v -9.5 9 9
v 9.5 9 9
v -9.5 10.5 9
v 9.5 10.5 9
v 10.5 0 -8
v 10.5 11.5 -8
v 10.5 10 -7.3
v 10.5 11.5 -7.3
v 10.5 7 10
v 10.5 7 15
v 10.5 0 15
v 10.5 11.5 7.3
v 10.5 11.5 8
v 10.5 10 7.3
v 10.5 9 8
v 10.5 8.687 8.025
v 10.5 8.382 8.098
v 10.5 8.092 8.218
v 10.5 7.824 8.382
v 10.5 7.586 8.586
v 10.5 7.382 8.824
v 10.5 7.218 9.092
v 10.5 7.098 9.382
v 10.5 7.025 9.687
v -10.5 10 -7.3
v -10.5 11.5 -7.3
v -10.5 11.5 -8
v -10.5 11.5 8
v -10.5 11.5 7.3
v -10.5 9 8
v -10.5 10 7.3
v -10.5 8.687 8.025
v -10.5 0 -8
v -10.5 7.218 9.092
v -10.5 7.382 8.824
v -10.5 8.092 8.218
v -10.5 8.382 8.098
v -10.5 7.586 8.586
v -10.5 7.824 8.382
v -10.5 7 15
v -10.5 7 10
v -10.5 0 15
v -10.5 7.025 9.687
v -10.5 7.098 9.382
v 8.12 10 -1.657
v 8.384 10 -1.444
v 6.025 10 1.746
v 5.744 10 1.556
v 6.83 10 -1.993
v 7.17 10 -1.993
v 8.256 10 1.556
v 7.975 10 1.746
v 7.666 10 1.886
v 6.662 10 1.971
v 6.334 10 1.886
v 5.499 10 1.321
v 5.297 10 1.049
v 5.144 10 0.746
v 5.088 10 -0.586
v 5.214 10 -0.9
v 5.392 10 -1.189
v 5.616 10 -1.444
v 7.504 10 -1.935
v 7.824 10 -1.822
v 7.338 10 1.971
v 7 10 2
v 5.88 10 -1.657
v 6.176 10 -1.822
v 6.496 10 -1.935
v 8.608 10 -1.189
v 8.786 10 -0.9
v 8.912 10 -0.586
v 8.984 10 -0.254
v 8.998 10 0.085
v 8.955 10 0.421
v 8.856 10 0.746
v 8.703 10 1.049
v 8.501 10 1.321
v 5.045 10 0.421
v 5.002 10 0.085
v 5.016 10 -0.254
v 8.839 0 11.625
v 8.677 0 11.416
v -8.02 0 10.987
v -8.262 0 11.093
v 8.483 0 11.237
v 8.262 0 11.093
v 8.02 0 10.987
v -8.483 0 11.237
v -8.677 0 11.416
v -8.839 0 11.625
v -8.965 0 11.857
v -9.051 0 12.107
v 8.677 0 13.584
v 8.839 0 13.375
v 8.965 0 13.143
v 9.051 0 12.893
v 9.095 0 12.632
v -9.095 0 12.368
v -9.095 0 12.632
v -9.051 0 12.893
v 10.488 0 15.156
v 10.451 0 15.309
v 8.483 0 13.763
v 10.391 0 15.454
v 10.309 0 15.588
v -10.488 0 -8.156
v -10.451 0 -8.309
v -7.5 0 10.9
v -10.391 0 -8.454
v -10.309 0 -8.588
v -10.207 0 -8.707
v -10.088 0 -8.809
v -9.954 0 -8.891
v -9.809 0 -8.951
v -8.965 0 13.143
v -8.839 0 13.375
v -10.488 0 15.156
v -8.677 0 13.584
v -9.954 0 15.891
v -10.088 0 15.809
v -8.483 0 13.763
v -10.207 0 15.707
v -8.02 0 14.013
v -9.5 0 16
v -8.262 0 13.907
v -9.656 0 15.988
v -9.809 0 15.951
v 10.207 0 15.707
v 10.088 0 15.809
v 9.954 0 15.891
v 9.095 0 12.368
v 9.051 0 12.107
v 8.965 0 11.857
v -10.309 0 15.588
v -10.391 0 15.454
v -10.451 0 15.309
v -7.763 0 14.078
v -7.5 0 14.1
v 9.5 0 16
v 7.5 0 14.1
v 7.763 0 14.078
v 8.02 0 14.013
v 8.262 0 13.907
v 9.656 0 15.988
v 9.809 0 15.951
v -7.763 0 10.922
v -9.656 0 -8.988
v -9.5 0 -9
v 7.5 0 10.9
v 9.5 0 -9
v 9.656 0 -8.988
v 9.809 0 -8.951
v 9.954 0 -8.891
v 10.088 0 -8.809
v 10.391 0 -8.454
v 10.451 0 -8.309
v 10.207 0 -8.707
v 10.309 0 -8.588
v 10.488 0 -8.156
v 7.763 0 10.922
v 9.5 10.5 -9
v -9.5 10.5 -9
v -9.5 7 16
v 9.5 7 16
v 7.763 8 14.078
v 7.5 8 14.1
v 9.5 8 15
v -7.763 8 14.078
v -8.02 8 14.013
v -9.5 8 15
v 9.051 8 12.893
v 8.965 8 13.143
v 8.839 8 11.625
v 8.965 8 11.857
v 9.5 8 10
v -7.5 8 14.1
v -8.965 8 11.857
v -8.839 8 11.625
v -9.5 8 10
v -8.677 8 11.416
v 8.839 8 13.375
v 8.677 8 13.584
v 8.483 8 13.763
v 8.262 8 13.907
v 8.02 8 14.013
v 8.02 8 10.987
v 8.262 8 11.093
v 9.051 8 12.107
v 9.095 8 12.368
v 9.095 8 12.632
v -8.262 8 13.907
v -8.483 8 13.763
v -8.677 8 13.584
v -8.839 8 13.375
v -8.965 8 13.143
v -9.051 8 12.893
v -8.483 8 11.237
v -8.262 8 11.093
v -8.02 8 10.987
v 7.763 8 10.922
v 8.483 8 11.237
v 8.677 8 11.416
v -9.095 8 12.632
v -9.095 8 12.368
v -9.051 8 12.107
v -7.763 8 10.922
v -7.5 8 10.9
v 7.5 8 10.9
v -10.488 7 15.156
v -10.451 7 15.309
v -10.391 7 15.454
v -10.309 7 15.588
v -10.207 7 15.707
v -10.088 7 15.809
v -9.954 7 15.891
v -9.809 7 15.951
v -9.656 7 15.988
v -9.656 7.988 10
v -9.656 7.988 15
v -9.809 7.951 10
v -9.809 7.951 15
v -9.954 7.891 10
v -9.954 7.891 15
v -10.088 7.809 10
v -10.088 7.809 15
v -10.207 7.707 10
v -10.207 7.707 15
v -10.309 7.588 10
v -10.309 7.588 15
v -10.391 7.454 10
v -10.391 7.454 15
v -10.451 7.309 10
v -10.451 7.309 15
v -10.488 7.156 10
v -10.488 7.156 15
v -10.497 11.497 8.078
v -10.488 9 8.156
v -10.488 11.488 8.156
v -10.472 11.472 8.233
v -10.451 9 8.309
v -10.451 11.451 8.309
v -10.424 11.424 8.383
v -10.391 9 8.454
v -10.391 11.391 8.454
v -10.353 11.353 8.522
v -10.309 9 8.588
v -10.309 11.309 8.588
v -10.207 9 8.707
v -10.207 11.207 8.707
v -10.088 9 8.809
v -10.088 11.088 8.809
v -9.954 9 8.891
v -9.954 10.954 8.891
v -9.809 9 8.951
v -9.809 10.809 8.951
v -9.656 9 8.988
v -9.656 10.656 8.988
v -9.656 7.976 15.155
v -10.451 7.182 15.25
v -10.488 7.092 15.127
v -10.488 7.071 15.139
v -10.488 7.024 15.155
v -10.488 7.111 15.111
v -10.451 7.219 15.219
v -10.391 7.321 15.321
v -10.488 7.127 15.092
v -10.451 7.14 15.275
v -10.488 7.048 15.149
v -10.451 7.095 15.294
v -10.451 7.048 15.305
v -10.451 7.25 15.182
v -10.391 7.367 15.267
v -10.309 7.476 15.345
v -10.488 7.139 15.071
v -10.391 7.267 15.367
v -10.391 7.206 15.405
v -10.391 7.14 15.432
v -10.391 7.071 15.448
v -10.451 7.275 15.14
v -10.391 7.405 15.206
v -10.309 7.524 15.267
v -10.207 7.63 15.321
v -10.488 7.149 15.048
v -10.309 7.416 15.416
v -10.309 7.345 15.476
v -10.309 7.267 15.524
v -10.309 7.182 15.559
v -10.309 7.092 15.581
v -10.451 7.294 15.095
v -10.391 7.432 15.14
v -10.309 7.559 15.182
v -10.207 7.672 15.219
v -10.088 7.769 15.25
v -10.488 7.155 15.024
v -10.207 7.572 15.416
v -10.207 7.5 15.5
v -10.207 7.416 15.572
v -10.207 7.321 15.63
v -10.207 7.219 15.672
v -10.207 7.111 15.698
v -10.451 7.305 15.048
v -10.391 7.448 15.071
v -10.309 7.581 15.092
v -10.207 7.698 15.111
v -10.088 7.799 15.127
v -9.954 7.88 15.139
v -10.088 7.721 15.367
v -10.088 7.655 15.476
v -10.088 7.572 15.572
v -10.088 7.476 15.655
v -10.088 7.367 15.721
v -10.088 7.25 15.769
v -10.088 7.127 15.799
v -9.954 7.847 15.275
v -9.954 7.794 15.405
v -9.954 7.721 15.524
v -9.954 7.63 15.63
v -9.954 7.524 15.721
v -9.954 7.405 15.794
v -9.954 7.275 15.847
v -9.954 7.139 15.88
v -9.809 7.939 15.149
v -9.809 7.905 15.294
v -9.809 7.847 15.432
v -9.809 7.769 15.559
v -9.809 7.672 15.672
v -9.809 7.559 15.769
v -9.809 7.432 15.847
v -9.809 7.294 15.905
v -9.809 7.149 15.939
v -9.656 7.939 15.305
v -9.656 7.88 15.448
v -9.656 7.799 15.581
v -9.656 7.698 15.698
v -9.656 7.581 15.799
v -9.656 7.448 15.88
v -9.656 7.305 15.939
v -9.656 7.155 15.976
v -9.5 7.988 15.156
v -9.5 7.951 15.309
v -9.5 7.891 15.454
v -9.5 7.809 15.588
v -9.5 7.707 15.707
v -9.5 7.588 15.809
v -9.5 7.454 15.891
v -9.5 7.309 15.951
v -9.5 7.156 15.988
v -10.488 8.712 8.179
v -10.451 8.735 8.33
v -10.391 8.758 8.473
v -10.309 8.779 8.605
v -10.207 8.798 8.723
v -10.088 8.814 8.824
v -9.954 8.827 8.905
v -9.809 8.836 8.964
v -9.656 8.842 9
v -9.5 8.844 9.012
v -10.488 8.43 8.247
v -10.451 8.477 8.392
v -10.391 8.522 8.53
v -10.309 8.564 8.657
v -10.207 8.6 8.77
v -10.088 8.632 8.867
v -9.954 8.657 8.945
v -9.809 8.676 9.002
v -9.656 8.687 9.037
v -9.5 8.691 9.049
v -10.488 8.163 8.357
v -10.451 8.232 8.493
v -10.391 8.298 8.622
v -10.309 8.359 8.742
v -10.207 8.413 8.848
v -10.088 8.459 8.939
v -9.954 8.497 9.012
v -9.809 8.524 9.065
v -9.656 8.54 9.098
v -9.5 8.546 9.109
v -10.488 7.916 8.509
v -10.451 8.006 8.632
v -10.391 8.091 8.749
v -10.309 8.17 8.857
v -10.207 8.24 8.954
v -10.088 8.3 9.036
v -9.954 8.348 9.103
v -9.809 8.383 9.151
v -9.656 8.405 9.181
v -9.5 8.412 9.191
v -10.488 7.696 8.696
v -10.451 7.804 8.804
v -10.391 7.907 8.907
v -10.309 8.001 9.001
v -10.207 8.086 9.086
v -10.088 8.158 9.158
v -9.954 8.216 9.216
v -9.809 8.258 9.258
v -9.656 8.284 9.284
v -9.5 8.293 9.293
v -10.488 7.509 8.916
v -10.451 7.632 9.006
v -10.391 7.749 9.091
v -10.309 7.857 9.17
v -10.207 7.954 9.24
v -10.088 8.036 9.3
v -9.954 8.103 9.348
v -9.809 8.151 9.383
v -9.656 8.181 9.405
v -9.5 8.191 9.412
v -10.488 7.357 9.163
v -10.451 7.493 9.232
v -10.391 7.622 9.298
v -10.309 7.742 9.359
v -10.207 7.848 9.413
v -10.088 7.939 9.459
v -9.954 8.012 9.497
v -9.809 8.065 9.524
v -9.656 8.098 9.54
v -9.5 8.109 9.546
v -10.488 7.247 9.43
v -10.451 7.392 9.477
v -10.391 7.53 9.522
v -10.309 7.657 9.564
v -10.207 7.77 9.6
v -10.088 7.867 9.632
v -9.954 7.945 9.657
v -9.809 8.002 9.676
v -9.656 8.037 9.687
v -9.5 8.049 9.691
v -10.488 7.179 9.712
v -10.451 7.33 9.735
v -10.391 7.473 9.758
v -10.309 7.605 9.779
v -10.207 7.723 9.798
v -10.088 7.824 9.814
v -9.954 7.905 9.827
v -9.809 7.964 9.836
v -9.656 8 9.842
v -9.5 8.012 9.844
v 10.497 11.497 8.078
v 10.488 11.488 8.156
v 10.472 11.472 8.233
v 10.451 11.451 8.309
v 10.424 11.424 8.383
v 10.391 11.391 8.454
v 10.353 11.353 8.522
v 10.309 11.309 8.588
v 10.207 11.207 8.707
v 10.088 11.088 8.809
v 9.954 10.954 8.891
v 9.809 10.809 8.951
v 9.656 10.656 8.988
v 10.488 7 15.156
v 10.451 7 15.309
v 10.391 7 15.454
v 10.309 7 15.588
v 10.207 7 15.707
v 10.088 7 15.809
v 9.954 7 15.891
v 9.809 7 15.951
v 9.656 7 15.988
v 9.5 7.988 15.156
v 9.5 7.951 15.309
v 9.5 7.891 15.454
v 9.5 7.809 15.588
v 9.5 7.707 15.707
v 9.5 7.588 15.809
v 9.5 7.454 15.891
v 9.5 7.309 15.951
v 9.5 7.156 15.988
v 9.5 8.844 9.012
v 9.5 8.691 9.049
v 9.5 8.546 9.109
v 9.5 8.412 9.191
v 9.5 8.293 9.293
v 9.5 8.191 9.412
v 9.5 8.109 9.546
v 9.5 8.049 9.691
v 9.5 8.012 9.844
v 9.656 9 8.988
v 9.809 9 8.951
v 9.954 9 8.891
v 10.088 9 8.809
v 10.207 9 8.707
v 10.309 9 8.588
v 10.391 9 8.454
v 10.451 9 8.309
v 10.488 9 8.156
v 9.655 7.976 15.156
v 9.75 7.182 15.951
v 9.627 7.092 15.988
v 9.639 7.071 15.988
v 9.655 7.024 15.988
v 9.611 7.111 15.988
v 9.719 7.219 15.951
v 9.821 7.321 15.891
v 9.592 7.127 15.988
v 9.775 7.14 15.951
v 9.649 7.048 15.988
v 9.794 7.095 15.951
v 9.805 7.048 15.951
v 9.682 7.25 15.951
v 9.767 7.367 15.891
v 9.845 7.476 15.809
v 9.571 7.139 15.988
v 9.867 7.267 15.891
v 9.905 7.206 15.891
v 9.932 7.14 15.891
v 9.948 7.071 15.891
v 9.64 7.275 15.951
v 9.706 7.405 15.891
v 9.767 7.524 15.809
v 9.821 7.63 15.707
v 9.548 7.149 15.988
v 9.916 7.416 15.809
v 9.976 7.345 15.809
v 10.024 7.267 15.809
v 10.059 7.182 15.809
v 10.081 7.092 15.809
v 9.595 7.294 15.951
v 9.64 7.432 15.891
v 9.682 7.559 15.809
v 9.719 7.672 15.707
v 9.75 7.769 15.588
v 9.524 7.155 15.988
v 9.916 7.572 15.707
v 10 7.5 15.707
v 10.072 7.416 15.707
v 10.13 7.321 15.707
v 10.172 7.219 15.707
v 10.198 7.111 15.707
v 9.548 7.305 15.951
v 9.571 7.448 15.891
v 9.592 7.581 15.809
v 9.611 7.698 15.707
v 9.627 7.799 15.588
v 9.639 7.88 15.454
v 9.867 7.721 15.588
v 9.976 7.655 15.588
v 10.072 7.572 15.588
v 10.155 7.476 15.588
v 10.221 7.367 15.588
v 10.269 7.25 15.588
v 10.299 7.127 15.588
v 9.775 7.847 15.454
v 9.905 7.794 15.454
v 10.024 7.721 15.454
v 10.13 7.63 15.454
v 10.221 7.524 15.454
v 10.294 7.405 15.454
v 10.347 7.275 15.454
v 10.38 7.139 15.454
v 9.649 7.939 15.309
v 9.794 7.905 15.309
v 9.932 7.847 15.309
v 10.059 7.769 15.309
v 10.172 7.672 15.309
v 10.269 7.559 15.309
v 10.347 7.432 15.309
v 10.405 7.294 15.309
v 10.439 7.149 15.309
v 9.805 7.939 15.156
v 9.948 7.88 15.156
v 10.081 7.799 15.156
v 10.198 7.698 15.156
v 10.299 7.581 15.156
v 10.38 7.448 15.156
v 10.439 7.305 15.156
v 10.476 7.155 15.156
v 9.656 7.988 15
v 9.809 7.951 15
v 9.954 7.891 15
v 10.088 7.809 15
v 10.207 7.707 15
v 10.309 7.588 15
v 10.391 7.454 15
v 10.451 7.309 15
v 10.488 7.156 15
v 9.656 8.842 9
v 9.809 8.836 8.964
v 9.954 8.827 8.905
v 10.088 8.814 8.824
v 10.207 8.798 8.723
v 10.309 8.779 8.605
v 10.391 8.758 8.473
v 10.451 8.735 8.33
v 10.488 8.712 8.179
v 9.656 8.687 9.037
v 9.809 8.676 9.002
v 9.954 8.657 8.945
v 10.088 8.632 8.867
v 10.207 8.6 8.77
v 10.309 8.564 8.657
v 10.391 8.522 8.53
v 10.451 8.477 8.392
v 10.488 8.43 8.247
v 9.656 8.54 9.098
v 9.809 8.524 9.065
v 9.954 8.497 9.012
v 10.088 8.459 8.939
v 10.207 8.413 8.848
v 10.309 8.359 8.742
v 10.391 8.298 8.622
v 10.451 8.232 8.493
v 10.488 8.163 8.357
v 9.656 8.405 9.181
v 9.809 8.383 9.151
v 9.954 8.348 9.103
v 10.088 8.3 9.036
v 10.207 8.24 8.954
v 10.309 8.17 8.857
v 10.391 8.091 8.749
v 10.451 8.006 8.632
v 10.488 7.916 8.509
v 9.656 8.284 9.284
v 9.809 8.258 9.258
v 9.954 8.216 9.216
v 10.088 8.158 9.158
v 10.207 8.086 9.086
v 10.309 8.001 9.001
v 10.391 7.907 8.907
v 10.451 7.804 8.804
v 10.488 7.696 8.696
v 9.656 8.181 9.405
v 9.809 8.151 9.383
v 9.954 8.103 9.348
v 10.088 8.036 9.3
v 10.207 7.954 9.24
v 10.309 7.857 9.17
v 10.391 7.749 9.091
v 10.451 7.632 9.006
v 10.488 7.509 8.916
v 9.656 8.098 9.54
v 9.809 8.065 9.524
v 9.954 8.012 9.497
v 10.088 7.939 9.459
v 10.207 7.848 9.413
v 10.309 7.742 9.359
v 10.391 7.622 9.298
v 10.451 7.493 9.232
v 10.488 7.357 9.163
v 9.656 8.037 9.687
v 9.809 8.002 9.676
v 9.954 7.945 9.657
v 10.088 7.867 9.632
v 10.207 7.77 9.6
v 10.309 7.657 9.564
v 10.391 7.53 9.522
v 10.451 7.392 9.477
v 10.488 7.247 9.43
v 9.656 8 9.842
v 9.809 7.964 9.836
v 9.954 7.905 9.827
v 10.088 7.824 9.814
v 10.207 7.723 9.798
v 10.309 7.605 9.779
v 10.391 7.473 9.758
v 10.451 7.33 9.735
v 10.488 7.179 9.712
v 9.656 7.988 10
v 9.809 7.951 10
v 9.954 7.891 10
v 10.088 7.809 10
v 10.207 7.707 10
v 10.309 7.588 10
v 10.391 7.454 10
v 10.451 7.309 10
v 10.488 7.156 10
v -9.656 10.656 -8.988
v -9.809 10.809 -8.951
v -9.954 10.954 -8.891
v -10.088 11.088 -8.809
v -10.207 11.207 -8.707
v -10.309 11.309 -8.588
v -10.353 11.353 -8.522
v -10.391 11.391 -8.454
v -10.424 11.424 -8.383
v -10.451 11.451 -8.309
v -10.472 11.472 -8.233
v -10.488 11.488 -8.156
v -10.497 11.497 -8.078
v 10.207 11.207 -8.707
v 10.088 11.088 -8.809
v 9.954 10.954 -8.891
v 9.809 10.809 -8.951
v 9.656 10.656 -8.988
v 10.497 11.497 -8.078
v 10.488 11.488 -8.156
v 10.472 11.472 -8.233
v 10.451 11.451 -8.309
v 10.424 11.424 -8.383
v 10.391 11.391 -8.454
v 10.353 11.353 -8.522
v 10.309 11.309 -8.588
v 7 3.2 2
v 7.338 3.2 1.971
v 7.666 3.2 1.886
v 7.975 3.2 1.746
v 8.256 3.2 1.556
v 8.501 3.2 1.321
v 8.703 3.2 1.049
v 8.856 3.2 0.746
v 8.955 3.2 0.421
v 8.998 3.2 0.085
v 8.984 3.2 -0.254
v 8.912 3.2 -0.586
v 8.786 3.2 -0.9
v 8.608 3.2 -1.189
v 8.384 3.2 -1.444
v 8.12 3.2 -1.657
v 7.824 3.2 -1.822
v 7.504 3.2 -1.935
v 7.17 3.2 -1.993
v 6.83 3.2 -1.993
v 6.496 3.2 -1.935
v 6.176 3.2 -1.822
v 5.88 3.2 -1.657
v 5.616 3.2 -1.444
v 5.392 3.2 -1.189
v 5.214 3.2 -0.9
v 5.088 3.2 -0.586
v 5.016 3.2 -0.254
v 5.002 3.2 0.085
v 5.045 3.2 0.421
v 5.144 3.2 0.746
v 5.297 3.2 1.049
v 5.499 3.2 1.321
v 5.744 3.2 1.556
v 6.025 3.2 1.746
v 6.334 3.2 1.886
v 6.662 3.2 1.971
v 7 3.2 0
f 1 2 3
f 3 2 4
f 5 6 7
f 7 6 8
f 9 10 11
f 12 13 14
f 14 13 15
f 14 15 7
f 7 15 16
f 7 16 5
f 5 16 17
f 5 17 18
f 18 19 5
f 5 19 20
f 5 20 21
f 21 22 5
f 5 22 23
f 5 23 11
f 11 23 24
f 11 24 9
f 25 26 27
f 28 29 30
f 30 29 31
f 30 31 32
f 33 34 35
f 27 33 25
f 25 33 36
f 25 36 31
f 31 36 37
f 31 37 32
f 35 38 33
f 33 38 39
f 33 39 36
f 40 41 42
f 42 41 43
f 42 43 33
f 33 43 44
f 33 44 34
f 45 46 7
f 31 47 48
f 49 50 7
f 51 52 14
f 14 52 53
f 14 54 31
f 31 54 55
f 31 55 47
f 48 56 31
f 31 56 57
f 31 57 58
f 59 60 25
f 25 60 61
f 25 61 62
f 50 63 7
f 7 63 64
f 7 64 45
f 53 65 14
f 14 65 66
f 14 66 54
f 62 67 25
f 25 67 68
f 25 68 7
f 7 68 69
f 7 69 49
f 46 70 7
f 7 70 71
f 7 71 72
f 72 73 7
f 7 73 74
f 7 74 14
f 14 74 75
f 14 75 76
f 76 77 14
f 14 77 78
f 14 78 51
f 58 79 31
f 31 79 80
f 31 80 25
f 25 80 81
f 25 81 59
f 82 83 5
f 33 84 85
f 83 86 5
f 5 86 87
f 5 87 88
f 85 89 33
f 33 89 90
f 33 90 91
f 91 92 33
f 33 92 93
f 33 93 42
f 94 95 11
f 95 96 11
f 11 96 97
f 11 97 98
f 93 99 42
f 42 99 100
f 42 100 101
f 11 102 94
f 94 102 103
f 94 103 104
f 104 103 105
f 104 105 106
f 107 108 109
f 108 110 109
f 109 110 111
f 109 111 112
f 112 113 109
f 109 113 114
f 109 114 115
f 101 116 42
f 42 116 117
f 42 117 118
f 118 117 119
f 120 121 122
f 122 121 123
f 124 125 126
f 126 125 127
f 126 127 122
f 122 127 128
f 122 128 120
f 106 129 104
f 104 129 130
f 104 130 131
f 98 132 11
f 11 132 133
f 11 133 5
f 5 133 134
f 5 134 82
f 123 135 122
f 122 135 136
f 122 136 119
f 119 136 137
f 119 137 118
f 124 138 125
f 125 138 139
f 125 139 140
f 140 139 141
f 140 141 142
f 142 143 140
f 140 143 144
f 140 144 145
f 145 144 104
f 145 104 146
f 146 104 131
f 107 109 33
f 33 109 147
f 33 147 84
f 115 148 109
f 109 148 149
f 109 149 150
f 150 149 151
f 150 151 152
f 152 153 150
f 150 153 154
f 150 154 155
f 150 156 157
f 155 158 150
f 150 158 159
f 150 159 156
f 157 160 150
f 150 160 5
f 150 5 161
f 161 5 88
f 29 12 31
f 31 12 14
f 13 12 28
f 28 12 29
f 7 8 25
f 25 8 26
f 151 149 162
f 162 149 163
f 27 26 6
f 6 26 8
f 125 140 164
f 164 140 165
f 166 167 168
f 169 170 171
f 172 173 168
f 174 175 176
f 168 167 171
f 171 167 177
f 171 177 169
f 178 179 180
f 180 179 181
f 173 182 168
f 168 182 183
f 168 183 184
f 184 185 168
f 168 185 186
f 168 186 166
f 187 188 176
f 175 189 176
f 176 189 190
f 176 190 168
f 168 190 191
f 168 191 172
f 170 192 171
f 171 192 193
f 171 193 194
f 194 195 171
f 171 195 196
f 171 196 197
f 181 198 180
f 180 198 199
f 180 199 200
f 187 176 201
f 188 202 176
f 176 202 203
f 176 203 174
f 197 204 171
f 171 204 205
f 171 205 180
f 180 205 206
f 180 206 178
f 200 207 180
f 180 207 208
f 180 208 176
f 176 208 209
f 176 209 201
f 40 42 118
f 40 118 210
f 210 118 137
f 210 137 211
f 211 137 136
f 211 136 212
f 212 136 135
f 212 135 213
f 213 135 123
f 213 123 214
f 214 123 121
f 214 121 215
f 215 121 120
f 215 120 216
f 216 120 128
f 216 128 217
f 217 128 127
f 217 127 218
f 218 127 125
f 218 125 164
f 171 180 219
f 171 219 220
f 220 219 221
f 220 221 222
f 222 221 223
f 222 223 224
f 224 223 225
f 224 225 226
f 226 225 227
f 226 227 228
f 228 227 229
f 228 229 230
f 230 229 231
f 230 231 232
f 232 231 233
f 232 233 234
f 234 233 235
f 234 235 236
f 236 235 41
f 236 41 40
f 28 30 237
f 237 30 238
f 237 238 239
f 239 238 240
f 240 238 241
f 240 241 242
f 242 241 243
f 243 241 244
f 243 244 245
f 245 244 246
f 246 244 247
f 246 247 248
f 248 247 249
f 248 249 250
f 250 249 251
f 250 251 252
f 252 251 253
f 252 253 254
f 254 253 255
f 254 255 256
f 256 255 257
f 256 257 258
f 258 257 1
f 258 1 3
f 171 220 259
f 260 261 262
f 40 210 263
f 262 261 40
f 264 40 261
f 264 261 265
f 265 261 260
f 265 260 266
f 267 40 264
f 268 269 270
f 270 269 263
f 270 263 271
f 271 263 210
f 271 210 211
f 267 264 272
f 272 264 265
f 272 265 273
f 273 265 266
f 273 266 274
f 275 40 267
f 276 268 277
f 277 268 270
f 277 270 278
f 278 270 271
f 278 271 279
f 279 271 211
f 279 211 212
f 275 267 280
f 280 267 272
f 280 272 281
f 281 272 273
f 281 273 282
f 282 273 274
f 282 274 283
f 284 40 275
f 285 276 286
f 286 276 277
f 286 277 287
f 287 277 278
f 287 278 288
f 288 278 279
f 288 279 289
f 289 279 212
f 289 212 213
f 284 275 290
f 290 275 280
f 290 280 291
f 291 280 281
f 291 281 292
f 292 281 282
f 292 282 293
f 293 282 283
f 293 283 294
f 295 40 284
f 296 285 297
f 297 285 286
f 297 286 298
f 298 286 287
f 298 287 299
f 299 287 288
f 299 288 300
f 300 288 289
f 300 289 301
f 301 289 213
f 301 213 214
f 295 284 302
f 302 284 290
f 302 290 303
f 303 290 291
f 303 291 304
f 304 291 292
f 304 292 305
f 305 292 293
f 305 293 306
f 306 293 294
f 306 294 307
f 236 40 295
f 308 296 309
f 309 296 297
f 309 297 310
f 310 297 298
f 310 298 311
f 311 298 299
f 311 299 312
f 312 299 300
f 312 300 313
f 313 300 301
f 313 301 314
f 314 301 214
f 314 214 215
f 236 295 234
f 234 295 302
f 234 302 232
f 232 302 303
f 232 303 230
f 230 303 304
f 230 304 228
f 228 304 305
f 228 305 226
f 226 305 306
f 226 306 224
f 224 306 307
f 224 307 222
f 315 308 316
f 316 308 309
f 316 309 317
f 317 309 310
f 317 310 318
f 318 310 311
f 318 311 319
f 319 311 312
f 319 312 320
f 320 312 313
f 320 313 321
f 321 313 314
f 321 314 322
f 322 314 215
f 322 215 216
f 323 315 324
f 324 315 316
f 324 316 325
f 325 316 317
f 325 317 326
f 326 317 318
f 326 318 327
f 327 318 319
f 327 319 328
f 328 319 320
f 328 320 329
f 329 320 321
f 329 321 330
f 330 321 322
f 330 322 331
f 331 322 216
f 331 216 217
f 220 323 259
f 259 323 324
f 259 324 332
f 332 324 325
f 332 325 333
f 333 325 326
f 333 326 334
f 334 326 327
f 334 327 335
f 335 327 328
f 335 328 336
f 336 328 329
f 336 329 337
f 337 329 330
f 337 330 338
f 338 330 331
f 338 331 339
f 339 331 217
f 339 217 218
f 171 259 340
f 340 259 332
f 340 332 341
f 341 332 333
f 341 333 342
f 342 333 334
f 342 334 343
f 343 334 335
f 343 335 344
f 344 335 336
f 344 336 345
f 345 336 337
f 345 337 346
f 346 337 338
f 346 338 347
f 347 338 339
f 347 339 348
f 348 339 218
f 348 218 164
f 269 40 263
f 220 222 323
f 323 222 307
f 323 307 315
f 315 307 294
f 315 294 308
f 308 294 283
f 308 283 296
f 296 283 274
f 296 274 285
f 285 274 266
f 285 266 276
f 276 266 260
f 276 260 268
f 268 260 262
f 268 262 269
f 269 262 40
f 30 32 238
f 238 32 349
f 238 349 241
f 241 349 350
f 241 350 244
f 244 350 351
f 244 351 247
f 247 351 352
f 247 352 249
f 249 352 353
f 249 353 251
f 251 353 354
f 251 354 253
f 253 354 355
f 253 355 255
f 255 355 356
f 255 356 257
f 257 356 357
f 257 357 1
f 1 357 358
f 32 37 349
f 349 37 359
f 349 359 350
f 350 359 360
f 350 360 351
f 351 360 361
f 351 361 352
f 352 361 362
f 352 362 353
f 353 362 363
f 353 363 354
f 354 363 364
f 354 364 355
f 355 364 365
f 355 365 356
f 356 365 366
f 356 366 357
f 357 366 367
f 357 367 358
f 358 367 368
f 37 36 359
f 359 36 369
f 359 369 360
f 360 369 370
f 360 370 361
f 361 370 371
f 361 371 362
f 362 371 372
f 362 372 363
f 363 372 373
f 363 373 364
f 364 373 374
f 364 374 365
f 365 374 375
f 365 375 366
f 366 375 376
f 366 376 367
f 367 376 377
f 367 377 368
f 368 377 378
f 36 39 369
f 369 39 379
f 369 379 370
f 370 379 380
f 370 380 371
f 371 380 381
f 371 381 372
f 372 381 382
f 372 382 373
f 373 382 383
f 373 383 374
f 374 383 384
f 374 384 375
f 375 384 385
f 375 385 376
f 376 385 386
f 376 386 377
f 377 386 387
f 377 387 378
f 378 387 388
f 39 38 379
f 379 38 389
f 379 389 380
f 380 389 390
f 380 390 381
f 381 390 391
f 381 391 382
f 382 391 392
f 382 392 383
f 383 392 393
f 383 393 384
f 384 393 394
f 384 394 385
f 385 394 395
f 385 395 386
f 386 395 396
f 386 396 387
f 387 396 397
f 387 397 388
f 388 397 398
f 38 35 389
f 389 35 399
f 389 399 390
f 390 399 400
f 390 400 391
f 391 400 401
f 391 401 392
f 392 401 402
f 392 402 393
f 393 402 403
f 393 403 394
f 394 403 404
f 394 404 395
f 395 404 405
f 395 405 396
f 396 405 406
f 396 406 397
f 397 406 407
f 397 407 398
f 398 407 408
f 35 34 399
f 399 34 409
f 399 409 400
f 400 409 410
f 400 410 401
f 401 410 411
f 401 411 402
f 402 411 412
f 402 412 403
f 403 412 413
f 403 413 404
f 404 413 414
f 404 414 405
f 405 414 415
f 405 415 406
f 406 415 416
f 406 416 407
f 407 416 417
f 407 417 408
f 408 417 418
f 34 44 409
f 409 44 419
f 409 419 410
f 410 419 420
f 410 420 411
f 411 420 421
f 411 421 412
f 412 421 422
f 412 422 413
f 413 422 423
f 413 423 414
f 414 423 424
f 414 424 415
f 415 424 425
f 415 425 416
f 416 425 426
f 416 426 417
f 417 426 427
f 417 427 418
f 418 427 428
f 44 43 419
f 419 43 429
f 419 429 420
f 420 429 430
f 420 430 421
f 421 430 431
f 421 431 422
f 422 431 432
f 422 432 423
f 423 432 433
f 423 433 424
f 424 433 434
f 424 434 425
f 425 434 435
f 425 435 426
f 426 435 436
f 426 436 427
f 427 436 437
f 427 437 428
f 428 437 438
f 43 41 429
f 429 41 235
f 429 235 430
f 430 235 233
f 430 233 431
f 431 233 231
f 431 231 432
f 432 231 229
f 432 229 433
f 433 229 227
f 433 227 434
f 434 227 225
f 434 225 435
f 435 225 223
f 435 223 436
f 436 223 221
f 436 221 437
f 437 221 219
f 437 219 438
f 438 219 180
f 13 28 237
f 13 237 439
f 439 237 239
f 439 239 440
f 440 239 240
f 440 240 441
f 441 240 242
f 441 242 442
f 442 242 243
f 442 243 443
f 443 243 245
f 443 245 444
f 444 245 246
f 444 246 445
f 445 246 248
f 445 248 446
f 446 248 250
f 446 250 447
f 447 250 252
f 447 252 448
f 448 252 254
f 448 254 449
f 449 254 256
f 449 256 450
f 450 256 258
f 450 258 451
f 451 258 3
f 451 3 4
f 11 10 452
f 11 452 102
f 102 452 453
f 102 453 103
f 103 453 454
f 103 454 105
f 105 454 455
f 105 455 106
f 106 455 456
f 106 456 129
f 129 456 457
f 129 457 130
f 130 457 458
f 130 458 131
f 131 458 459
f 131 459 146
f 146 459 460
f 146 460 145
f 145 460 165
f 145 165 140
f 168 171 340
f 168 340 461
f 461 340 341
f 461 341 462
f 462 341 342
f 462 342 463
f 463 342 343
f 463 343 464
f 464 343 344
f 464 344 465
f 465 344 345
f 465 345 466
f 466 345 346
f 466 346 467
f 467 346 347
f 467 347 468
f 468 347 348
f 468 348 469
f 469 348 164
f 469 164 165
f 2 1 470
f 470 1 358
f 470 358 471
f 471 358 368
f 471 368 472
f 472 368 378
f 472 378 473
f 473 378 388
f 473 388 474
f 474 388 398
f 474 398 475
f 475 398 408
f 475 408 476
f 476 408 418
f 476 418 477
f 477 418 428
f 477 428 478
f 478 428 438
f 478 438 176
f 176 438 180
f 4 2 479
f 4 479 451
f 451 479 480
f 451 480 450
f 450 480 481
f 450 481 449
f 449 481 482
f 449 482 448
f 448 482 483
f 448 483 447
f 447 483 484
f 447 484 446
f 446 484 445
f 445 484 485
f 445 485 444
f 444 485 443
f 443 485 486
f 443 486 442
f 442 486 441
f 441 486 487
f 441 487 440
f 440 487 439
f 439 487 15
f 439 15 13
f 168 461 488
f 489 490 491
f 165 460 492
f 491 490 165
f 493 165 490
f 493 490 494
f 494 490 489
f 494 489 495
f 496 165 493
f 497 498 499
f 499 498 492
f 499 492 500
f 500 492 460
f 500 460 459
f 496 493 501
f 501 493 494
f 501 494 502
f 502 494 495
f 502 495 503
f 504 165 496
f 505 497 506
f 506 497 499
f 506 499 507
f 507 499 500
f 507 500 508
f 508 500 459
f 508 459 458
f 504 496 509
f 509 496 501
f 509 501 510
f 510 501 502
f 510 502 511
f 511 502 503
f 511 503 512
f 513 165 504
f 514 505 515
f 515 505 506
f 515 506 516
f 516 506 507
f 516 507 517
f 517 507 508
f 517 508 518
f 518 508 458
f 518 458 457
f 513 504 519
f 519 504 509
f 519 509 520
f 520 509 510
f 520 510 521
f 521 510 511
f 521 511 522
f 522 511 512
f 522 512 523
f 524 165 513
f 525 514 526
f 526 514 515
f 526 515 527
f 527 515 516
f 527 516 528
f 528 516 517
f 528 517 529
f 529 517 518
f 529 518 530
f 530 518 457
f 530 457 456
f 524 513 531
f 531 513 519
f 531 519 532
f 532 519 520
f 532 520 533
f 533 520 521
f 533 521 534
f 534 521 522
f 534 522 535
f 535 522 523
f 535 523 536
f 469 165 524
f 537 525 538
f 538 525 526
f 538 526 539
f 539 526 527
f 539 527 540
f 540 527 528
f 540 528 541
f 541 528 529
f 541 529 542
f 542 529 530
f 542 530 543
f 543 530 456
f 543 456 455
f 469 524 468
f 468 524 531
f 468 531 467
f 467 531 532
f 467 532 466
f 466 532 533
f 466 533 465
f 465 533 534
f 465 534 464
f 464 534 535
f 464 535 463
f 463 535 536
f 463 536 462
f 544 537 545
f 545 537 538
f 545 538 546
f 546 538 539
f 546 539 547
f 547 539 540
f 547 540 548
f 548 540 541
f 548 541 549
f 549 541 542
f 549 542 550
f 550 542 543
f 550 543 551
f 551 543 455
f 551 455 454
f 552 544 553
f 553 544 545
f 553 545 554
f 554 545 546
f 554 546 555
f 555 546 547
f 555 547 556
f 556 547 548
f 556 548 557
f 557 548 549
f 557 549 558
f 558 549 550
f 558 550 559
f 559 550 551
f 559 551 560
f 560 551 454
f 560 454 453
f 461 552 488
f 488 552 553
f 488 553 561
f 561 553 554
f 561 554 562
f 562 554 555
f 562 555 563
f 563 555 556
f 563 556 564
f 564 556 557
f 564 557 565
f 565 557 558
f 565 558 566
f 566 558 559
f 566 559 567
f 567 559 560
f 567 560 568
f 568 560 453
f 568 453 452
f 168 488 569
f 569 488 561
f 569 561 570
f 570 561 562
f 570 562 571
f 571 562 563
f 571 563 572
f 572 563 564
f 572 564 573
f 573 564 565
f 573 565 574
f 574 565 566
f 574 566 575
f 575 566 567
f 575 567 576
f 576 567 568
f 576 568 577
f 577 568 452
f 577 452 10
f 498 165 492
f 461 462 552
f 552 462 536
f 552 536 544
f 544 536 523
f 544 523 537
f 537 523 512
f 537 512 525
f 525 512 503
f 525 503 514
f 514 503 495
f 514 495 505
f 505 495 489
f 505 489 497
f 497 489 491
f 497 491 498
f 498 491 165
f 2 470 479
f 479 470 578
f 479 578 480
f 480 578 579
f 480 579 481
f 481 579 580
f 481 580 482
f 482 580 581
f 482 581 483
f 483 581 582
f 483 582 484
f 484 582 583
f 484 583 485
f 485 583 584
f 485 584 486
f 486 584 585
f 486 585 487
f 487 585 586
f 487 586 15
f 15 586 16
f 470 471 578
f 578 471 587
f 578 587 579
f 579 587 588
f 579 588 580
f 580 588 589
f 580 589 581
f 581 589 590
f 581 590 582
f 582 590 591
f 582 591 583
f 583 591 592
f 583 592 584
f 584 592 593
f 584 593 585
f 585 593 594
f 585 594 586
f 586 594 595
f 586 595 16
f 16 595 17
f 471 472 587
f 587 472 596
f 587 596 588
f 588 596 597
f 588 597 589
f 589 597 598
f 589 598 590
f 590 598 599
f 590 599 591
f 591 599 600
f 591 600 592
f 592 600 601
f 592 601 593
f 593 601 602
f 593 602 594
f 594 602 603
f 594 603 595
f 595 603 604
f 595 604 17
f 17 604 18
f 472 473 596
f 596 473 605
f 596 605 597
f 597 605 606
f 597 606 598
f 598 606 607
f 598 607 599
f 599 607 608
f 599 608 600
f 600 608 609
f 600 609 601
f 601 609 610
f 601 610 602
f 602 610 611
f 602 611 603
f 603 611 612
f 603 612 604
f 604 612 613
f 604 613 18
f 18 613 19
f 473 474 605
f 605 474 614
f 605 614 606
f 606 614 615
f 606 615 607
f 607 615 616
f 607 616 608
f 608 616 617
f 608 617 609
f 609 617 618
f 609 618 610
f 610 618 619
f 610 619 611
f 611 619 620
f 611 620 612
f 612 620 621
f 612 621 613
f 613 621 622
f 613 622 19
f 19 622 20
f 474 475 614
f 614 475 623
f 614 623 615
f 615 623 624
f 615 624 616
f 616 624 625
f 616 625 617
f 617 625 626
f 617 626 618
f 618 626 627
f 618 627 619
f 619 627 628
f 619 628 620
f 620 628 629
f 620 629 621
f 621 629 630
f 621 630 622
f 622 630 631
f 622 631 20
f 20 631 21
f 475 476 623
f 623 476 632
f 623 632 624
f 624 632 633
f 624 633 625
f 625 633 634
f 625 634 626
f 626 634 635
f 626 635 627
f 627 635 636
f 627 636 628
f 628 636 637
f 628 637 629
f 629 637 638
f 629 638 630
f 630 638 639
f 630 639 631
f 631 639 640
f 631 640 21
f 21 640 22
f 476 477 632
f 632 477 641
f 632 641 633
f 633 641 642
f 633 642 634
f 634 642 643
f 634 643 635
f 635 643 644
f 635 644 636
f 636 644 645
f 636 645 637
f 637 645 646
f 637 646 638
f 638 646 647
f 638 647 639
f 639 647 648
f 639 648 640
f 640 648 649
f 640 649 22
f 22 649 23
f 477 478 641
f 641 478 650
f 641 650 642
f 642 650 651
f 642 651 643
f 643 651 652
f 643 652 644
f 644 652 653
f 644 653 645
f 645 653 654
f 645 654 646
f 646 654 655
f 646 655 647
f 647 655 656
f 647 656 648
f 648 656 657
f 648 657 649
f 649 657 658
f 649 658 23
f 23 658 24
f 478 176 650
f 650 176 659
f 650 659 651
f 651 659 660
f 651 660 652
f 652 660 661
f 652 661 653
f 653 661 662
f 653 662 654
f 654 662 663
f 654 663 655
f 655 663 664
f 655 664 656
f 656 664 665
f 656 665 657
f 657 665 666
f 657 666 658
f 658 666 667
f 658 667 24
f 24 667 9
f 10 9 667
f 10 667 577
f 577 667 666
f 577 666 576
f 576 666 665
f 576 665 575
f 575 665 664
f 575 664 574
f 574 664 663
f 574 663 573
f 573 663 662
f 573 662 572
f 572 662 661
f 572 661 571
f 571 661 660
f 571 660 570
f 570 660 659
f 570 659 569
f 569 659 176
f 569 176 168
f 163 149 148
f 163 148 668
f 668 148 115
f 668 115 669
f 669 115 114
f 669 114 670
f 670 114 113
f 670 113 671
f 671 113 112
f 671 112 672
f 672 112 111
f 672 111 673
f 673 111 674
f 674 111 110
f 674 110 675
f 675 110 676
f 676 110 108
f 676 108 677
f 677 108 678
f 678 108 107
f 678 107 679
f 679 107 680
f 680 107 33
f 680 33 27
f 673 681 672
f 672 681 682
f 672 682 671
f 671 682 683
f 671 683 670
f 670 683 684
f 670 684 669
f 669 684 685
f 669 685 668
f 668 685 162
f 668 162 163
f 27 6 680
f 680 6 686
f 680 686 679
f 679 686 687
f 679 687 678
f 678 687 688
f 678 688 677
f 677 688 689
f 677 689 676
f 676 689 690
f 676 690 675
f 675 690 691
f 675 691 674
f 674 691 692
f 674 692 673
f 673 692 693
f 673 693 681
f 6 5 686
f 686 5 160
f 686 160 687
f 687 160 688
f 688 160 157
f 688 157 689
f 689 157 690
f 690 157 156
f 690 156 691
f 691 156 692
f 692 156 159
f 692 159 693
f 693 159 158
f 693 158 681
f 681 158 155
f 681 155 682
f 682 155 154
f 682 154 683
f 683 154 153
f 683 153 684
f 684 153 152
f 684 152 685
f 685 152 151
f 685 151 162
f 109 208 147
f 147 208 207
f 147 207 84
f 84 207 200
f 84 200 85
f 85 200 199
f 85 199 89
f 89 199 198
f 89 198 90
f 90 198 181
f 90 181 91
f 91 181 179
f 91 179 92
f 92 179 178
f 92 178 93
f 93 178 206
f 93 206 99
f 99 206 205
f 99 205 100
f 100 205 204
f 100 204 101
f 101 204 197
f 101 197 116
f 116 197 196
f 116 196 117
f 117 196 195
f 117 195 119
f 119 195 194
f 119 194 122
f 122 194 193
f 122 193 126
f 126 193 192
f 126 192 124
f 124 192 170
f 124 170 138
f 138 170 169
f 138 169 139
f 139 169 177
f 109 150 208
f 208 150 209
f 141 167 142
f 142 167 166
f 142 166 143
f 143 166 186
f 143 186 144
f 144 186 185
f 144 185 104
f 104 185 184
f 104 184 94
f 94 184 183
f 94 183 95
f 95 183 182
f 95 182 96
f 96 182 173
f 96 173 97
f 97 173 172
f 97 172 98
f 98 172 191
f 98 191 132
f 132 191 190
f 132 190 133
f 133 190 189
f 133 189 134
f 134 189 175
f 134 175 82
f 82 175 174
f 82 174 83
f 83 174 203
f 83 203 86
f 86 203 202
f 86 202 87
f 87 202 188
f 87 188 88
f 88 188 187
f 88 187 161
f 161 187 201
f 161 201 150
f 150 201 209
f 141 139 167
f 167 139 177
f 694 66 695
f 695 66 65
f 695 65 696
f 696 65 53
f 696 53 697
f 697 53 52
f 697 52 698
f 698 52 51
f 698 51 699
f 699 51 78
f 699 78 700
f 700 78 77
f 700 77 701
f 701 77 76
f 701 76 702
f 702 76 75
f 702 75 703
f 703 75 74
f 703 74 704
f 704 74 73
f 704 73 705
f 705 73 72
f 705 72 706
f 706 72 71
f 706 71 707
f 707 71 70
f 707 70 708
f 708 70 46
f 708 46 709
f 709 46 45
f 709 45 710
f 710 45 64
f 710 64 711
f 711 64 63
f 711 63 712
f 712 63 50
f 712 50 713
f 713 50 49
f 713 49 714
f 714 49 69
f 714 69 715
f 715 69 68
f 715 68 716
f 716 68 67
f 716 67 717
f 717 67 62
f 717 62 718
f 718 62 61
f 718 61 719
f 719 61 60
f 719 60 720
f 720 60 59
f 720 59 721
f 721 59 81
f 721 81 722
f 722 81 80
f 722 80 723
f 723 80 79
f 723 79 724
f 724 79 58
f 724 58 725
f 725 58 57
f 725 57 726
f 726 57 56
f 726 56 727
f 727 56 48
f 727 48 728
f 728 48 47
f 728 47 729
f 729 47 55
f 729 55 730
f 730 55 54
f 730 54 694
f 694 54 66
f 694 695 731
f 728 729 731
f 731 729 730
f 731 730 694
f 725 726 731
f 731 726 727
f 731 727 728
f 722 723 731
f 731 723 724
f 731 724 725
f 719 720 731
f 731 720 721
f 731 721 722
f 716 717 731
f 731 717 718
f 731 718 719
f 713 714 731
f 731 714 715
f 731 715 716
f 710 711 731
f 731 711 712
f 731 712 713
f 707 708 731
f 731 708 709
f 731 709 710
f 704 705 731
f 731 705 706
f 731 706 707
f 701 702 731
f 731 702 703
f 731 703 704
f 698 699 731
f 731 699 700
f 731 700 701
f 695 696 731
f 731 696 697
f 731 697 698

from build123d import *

# Parameters (mm, degrees)
SKETCH1_W           = 21
SKETCH1_H           = 14.6
BOSS_EXTRUDE1_DEPTH = 10
SKETCH1_3_W         = 21
SKETCH1_3_H         = 1.7
BOSS_EXTRUDE2_DEPTH = 11.5
SKETCH3_W           = 21
SKETCH3_H           = 7
BOSS_EXTRUDE4_DEPTH = 8
FILLET1_R           = 1
CUT_EXTRUDE1_DEPTH  = 21.742468513
SKETCH5_R           = 2
CUT_EXTRUDE2_DEPTH  = 6.8


with BuildPart() as part:
    # Sketch1 → Boss-Extrude1 (new body)
    with BuildSketch(Plane(origin=(0, 0, 0), x_dir=(1, 0, 0), z_dir=(0, 1, 0))):
        Rectangle(SKETCH1_W, SKETCH1_H)
    extrude(amount=BOSS_EXTRUDE1_DEPTH)

    # Sketch1<3> → Boss-Extrude2 (add)
    with BuildSketch(Plane(origin=(0, 0, 0), x_dir=(1, 0, 0), z_dir=(0, 1, 0))):
        with Locations((0, 8.15)):
            Rectangle(SKETCH1_3_W, SKETCH1_3_H)
        with Locations((0, -8.15)):
            Rectangle(SKETCH1_3_W, SKETCH1_3_H)
    extrude(amount=BOSS_EXTRUDE2_DEPTH)

    # Sketch3 → Boss-Extrude4 (add)
    with BuildSketch(Plane(origin=(0, 0, 0), x_dir=(1, 0, 0), z_dir=(0, 1, 0))):
        with Locations((0, -12.5)):
            Rectangle(SKETCH3_W, SKETCH3_H)
    extrude(amount=BOSS_EXTRUDE4_DEPTH)

    # Fillet1
    fillet1_edges = [part.edges().sort_by_distance(p)[0] for p in [
        (10.5, 8, 12.5),
        (-10.5, 9.75, 9),
        (10.5, 5.75, -9),
        (0, 11.5, 9),
        (-10.5, 5.75, -9),
        (0, 11.5, -9),
        (-10.5, 4, 16),
        (10.5, 4, 16),
        (0, 8, 16),
        (10.5, 9.75, 9),
        (-10.5, 8, 12.5),
        (0, 8, 9),
    ]]
    fillet(fillet1_edges, radius=FILLET1_R)

    # Sketch4 → Cut-Extrude1 (cut, through all)
    with BuildSketch(Plane(origin=(0, 8, 0), x_dir=(1, 0, 0), z_dir=(0, 1, 0))):
        with BuildLine():
            Line((-7.5, -10.9), (7.5, -10.9))
            ThreePointArc((7.5, -10.9), (9.1, -12.5), (7.5, -14.1))
            Line((7.5, -14.1), (-7.5, -14.1))
            ThreePointArc((-7.5, -14.1), (-9.1, -12.5), (-7.5, -10.9))
        make_face()
    extrude(amount=-CUT_EXTRUDE1_DEPTH, mode=Mode.SUBTRACT)

    # Sketch5 → Cut-Extrude2 (cut)
    with BuildSketch(Plane(origin=(0, 10, 0), x_dir=(1, 0, 0), z_dir=(0, 1, 0))):
        with Locations((7, 0)):
            Circle(SKETCH5_R)
    extrude(amount=-CUT_EXTRUDE2_DEPTH, mode=Mode.SUBTRACT)


solid = part.part
